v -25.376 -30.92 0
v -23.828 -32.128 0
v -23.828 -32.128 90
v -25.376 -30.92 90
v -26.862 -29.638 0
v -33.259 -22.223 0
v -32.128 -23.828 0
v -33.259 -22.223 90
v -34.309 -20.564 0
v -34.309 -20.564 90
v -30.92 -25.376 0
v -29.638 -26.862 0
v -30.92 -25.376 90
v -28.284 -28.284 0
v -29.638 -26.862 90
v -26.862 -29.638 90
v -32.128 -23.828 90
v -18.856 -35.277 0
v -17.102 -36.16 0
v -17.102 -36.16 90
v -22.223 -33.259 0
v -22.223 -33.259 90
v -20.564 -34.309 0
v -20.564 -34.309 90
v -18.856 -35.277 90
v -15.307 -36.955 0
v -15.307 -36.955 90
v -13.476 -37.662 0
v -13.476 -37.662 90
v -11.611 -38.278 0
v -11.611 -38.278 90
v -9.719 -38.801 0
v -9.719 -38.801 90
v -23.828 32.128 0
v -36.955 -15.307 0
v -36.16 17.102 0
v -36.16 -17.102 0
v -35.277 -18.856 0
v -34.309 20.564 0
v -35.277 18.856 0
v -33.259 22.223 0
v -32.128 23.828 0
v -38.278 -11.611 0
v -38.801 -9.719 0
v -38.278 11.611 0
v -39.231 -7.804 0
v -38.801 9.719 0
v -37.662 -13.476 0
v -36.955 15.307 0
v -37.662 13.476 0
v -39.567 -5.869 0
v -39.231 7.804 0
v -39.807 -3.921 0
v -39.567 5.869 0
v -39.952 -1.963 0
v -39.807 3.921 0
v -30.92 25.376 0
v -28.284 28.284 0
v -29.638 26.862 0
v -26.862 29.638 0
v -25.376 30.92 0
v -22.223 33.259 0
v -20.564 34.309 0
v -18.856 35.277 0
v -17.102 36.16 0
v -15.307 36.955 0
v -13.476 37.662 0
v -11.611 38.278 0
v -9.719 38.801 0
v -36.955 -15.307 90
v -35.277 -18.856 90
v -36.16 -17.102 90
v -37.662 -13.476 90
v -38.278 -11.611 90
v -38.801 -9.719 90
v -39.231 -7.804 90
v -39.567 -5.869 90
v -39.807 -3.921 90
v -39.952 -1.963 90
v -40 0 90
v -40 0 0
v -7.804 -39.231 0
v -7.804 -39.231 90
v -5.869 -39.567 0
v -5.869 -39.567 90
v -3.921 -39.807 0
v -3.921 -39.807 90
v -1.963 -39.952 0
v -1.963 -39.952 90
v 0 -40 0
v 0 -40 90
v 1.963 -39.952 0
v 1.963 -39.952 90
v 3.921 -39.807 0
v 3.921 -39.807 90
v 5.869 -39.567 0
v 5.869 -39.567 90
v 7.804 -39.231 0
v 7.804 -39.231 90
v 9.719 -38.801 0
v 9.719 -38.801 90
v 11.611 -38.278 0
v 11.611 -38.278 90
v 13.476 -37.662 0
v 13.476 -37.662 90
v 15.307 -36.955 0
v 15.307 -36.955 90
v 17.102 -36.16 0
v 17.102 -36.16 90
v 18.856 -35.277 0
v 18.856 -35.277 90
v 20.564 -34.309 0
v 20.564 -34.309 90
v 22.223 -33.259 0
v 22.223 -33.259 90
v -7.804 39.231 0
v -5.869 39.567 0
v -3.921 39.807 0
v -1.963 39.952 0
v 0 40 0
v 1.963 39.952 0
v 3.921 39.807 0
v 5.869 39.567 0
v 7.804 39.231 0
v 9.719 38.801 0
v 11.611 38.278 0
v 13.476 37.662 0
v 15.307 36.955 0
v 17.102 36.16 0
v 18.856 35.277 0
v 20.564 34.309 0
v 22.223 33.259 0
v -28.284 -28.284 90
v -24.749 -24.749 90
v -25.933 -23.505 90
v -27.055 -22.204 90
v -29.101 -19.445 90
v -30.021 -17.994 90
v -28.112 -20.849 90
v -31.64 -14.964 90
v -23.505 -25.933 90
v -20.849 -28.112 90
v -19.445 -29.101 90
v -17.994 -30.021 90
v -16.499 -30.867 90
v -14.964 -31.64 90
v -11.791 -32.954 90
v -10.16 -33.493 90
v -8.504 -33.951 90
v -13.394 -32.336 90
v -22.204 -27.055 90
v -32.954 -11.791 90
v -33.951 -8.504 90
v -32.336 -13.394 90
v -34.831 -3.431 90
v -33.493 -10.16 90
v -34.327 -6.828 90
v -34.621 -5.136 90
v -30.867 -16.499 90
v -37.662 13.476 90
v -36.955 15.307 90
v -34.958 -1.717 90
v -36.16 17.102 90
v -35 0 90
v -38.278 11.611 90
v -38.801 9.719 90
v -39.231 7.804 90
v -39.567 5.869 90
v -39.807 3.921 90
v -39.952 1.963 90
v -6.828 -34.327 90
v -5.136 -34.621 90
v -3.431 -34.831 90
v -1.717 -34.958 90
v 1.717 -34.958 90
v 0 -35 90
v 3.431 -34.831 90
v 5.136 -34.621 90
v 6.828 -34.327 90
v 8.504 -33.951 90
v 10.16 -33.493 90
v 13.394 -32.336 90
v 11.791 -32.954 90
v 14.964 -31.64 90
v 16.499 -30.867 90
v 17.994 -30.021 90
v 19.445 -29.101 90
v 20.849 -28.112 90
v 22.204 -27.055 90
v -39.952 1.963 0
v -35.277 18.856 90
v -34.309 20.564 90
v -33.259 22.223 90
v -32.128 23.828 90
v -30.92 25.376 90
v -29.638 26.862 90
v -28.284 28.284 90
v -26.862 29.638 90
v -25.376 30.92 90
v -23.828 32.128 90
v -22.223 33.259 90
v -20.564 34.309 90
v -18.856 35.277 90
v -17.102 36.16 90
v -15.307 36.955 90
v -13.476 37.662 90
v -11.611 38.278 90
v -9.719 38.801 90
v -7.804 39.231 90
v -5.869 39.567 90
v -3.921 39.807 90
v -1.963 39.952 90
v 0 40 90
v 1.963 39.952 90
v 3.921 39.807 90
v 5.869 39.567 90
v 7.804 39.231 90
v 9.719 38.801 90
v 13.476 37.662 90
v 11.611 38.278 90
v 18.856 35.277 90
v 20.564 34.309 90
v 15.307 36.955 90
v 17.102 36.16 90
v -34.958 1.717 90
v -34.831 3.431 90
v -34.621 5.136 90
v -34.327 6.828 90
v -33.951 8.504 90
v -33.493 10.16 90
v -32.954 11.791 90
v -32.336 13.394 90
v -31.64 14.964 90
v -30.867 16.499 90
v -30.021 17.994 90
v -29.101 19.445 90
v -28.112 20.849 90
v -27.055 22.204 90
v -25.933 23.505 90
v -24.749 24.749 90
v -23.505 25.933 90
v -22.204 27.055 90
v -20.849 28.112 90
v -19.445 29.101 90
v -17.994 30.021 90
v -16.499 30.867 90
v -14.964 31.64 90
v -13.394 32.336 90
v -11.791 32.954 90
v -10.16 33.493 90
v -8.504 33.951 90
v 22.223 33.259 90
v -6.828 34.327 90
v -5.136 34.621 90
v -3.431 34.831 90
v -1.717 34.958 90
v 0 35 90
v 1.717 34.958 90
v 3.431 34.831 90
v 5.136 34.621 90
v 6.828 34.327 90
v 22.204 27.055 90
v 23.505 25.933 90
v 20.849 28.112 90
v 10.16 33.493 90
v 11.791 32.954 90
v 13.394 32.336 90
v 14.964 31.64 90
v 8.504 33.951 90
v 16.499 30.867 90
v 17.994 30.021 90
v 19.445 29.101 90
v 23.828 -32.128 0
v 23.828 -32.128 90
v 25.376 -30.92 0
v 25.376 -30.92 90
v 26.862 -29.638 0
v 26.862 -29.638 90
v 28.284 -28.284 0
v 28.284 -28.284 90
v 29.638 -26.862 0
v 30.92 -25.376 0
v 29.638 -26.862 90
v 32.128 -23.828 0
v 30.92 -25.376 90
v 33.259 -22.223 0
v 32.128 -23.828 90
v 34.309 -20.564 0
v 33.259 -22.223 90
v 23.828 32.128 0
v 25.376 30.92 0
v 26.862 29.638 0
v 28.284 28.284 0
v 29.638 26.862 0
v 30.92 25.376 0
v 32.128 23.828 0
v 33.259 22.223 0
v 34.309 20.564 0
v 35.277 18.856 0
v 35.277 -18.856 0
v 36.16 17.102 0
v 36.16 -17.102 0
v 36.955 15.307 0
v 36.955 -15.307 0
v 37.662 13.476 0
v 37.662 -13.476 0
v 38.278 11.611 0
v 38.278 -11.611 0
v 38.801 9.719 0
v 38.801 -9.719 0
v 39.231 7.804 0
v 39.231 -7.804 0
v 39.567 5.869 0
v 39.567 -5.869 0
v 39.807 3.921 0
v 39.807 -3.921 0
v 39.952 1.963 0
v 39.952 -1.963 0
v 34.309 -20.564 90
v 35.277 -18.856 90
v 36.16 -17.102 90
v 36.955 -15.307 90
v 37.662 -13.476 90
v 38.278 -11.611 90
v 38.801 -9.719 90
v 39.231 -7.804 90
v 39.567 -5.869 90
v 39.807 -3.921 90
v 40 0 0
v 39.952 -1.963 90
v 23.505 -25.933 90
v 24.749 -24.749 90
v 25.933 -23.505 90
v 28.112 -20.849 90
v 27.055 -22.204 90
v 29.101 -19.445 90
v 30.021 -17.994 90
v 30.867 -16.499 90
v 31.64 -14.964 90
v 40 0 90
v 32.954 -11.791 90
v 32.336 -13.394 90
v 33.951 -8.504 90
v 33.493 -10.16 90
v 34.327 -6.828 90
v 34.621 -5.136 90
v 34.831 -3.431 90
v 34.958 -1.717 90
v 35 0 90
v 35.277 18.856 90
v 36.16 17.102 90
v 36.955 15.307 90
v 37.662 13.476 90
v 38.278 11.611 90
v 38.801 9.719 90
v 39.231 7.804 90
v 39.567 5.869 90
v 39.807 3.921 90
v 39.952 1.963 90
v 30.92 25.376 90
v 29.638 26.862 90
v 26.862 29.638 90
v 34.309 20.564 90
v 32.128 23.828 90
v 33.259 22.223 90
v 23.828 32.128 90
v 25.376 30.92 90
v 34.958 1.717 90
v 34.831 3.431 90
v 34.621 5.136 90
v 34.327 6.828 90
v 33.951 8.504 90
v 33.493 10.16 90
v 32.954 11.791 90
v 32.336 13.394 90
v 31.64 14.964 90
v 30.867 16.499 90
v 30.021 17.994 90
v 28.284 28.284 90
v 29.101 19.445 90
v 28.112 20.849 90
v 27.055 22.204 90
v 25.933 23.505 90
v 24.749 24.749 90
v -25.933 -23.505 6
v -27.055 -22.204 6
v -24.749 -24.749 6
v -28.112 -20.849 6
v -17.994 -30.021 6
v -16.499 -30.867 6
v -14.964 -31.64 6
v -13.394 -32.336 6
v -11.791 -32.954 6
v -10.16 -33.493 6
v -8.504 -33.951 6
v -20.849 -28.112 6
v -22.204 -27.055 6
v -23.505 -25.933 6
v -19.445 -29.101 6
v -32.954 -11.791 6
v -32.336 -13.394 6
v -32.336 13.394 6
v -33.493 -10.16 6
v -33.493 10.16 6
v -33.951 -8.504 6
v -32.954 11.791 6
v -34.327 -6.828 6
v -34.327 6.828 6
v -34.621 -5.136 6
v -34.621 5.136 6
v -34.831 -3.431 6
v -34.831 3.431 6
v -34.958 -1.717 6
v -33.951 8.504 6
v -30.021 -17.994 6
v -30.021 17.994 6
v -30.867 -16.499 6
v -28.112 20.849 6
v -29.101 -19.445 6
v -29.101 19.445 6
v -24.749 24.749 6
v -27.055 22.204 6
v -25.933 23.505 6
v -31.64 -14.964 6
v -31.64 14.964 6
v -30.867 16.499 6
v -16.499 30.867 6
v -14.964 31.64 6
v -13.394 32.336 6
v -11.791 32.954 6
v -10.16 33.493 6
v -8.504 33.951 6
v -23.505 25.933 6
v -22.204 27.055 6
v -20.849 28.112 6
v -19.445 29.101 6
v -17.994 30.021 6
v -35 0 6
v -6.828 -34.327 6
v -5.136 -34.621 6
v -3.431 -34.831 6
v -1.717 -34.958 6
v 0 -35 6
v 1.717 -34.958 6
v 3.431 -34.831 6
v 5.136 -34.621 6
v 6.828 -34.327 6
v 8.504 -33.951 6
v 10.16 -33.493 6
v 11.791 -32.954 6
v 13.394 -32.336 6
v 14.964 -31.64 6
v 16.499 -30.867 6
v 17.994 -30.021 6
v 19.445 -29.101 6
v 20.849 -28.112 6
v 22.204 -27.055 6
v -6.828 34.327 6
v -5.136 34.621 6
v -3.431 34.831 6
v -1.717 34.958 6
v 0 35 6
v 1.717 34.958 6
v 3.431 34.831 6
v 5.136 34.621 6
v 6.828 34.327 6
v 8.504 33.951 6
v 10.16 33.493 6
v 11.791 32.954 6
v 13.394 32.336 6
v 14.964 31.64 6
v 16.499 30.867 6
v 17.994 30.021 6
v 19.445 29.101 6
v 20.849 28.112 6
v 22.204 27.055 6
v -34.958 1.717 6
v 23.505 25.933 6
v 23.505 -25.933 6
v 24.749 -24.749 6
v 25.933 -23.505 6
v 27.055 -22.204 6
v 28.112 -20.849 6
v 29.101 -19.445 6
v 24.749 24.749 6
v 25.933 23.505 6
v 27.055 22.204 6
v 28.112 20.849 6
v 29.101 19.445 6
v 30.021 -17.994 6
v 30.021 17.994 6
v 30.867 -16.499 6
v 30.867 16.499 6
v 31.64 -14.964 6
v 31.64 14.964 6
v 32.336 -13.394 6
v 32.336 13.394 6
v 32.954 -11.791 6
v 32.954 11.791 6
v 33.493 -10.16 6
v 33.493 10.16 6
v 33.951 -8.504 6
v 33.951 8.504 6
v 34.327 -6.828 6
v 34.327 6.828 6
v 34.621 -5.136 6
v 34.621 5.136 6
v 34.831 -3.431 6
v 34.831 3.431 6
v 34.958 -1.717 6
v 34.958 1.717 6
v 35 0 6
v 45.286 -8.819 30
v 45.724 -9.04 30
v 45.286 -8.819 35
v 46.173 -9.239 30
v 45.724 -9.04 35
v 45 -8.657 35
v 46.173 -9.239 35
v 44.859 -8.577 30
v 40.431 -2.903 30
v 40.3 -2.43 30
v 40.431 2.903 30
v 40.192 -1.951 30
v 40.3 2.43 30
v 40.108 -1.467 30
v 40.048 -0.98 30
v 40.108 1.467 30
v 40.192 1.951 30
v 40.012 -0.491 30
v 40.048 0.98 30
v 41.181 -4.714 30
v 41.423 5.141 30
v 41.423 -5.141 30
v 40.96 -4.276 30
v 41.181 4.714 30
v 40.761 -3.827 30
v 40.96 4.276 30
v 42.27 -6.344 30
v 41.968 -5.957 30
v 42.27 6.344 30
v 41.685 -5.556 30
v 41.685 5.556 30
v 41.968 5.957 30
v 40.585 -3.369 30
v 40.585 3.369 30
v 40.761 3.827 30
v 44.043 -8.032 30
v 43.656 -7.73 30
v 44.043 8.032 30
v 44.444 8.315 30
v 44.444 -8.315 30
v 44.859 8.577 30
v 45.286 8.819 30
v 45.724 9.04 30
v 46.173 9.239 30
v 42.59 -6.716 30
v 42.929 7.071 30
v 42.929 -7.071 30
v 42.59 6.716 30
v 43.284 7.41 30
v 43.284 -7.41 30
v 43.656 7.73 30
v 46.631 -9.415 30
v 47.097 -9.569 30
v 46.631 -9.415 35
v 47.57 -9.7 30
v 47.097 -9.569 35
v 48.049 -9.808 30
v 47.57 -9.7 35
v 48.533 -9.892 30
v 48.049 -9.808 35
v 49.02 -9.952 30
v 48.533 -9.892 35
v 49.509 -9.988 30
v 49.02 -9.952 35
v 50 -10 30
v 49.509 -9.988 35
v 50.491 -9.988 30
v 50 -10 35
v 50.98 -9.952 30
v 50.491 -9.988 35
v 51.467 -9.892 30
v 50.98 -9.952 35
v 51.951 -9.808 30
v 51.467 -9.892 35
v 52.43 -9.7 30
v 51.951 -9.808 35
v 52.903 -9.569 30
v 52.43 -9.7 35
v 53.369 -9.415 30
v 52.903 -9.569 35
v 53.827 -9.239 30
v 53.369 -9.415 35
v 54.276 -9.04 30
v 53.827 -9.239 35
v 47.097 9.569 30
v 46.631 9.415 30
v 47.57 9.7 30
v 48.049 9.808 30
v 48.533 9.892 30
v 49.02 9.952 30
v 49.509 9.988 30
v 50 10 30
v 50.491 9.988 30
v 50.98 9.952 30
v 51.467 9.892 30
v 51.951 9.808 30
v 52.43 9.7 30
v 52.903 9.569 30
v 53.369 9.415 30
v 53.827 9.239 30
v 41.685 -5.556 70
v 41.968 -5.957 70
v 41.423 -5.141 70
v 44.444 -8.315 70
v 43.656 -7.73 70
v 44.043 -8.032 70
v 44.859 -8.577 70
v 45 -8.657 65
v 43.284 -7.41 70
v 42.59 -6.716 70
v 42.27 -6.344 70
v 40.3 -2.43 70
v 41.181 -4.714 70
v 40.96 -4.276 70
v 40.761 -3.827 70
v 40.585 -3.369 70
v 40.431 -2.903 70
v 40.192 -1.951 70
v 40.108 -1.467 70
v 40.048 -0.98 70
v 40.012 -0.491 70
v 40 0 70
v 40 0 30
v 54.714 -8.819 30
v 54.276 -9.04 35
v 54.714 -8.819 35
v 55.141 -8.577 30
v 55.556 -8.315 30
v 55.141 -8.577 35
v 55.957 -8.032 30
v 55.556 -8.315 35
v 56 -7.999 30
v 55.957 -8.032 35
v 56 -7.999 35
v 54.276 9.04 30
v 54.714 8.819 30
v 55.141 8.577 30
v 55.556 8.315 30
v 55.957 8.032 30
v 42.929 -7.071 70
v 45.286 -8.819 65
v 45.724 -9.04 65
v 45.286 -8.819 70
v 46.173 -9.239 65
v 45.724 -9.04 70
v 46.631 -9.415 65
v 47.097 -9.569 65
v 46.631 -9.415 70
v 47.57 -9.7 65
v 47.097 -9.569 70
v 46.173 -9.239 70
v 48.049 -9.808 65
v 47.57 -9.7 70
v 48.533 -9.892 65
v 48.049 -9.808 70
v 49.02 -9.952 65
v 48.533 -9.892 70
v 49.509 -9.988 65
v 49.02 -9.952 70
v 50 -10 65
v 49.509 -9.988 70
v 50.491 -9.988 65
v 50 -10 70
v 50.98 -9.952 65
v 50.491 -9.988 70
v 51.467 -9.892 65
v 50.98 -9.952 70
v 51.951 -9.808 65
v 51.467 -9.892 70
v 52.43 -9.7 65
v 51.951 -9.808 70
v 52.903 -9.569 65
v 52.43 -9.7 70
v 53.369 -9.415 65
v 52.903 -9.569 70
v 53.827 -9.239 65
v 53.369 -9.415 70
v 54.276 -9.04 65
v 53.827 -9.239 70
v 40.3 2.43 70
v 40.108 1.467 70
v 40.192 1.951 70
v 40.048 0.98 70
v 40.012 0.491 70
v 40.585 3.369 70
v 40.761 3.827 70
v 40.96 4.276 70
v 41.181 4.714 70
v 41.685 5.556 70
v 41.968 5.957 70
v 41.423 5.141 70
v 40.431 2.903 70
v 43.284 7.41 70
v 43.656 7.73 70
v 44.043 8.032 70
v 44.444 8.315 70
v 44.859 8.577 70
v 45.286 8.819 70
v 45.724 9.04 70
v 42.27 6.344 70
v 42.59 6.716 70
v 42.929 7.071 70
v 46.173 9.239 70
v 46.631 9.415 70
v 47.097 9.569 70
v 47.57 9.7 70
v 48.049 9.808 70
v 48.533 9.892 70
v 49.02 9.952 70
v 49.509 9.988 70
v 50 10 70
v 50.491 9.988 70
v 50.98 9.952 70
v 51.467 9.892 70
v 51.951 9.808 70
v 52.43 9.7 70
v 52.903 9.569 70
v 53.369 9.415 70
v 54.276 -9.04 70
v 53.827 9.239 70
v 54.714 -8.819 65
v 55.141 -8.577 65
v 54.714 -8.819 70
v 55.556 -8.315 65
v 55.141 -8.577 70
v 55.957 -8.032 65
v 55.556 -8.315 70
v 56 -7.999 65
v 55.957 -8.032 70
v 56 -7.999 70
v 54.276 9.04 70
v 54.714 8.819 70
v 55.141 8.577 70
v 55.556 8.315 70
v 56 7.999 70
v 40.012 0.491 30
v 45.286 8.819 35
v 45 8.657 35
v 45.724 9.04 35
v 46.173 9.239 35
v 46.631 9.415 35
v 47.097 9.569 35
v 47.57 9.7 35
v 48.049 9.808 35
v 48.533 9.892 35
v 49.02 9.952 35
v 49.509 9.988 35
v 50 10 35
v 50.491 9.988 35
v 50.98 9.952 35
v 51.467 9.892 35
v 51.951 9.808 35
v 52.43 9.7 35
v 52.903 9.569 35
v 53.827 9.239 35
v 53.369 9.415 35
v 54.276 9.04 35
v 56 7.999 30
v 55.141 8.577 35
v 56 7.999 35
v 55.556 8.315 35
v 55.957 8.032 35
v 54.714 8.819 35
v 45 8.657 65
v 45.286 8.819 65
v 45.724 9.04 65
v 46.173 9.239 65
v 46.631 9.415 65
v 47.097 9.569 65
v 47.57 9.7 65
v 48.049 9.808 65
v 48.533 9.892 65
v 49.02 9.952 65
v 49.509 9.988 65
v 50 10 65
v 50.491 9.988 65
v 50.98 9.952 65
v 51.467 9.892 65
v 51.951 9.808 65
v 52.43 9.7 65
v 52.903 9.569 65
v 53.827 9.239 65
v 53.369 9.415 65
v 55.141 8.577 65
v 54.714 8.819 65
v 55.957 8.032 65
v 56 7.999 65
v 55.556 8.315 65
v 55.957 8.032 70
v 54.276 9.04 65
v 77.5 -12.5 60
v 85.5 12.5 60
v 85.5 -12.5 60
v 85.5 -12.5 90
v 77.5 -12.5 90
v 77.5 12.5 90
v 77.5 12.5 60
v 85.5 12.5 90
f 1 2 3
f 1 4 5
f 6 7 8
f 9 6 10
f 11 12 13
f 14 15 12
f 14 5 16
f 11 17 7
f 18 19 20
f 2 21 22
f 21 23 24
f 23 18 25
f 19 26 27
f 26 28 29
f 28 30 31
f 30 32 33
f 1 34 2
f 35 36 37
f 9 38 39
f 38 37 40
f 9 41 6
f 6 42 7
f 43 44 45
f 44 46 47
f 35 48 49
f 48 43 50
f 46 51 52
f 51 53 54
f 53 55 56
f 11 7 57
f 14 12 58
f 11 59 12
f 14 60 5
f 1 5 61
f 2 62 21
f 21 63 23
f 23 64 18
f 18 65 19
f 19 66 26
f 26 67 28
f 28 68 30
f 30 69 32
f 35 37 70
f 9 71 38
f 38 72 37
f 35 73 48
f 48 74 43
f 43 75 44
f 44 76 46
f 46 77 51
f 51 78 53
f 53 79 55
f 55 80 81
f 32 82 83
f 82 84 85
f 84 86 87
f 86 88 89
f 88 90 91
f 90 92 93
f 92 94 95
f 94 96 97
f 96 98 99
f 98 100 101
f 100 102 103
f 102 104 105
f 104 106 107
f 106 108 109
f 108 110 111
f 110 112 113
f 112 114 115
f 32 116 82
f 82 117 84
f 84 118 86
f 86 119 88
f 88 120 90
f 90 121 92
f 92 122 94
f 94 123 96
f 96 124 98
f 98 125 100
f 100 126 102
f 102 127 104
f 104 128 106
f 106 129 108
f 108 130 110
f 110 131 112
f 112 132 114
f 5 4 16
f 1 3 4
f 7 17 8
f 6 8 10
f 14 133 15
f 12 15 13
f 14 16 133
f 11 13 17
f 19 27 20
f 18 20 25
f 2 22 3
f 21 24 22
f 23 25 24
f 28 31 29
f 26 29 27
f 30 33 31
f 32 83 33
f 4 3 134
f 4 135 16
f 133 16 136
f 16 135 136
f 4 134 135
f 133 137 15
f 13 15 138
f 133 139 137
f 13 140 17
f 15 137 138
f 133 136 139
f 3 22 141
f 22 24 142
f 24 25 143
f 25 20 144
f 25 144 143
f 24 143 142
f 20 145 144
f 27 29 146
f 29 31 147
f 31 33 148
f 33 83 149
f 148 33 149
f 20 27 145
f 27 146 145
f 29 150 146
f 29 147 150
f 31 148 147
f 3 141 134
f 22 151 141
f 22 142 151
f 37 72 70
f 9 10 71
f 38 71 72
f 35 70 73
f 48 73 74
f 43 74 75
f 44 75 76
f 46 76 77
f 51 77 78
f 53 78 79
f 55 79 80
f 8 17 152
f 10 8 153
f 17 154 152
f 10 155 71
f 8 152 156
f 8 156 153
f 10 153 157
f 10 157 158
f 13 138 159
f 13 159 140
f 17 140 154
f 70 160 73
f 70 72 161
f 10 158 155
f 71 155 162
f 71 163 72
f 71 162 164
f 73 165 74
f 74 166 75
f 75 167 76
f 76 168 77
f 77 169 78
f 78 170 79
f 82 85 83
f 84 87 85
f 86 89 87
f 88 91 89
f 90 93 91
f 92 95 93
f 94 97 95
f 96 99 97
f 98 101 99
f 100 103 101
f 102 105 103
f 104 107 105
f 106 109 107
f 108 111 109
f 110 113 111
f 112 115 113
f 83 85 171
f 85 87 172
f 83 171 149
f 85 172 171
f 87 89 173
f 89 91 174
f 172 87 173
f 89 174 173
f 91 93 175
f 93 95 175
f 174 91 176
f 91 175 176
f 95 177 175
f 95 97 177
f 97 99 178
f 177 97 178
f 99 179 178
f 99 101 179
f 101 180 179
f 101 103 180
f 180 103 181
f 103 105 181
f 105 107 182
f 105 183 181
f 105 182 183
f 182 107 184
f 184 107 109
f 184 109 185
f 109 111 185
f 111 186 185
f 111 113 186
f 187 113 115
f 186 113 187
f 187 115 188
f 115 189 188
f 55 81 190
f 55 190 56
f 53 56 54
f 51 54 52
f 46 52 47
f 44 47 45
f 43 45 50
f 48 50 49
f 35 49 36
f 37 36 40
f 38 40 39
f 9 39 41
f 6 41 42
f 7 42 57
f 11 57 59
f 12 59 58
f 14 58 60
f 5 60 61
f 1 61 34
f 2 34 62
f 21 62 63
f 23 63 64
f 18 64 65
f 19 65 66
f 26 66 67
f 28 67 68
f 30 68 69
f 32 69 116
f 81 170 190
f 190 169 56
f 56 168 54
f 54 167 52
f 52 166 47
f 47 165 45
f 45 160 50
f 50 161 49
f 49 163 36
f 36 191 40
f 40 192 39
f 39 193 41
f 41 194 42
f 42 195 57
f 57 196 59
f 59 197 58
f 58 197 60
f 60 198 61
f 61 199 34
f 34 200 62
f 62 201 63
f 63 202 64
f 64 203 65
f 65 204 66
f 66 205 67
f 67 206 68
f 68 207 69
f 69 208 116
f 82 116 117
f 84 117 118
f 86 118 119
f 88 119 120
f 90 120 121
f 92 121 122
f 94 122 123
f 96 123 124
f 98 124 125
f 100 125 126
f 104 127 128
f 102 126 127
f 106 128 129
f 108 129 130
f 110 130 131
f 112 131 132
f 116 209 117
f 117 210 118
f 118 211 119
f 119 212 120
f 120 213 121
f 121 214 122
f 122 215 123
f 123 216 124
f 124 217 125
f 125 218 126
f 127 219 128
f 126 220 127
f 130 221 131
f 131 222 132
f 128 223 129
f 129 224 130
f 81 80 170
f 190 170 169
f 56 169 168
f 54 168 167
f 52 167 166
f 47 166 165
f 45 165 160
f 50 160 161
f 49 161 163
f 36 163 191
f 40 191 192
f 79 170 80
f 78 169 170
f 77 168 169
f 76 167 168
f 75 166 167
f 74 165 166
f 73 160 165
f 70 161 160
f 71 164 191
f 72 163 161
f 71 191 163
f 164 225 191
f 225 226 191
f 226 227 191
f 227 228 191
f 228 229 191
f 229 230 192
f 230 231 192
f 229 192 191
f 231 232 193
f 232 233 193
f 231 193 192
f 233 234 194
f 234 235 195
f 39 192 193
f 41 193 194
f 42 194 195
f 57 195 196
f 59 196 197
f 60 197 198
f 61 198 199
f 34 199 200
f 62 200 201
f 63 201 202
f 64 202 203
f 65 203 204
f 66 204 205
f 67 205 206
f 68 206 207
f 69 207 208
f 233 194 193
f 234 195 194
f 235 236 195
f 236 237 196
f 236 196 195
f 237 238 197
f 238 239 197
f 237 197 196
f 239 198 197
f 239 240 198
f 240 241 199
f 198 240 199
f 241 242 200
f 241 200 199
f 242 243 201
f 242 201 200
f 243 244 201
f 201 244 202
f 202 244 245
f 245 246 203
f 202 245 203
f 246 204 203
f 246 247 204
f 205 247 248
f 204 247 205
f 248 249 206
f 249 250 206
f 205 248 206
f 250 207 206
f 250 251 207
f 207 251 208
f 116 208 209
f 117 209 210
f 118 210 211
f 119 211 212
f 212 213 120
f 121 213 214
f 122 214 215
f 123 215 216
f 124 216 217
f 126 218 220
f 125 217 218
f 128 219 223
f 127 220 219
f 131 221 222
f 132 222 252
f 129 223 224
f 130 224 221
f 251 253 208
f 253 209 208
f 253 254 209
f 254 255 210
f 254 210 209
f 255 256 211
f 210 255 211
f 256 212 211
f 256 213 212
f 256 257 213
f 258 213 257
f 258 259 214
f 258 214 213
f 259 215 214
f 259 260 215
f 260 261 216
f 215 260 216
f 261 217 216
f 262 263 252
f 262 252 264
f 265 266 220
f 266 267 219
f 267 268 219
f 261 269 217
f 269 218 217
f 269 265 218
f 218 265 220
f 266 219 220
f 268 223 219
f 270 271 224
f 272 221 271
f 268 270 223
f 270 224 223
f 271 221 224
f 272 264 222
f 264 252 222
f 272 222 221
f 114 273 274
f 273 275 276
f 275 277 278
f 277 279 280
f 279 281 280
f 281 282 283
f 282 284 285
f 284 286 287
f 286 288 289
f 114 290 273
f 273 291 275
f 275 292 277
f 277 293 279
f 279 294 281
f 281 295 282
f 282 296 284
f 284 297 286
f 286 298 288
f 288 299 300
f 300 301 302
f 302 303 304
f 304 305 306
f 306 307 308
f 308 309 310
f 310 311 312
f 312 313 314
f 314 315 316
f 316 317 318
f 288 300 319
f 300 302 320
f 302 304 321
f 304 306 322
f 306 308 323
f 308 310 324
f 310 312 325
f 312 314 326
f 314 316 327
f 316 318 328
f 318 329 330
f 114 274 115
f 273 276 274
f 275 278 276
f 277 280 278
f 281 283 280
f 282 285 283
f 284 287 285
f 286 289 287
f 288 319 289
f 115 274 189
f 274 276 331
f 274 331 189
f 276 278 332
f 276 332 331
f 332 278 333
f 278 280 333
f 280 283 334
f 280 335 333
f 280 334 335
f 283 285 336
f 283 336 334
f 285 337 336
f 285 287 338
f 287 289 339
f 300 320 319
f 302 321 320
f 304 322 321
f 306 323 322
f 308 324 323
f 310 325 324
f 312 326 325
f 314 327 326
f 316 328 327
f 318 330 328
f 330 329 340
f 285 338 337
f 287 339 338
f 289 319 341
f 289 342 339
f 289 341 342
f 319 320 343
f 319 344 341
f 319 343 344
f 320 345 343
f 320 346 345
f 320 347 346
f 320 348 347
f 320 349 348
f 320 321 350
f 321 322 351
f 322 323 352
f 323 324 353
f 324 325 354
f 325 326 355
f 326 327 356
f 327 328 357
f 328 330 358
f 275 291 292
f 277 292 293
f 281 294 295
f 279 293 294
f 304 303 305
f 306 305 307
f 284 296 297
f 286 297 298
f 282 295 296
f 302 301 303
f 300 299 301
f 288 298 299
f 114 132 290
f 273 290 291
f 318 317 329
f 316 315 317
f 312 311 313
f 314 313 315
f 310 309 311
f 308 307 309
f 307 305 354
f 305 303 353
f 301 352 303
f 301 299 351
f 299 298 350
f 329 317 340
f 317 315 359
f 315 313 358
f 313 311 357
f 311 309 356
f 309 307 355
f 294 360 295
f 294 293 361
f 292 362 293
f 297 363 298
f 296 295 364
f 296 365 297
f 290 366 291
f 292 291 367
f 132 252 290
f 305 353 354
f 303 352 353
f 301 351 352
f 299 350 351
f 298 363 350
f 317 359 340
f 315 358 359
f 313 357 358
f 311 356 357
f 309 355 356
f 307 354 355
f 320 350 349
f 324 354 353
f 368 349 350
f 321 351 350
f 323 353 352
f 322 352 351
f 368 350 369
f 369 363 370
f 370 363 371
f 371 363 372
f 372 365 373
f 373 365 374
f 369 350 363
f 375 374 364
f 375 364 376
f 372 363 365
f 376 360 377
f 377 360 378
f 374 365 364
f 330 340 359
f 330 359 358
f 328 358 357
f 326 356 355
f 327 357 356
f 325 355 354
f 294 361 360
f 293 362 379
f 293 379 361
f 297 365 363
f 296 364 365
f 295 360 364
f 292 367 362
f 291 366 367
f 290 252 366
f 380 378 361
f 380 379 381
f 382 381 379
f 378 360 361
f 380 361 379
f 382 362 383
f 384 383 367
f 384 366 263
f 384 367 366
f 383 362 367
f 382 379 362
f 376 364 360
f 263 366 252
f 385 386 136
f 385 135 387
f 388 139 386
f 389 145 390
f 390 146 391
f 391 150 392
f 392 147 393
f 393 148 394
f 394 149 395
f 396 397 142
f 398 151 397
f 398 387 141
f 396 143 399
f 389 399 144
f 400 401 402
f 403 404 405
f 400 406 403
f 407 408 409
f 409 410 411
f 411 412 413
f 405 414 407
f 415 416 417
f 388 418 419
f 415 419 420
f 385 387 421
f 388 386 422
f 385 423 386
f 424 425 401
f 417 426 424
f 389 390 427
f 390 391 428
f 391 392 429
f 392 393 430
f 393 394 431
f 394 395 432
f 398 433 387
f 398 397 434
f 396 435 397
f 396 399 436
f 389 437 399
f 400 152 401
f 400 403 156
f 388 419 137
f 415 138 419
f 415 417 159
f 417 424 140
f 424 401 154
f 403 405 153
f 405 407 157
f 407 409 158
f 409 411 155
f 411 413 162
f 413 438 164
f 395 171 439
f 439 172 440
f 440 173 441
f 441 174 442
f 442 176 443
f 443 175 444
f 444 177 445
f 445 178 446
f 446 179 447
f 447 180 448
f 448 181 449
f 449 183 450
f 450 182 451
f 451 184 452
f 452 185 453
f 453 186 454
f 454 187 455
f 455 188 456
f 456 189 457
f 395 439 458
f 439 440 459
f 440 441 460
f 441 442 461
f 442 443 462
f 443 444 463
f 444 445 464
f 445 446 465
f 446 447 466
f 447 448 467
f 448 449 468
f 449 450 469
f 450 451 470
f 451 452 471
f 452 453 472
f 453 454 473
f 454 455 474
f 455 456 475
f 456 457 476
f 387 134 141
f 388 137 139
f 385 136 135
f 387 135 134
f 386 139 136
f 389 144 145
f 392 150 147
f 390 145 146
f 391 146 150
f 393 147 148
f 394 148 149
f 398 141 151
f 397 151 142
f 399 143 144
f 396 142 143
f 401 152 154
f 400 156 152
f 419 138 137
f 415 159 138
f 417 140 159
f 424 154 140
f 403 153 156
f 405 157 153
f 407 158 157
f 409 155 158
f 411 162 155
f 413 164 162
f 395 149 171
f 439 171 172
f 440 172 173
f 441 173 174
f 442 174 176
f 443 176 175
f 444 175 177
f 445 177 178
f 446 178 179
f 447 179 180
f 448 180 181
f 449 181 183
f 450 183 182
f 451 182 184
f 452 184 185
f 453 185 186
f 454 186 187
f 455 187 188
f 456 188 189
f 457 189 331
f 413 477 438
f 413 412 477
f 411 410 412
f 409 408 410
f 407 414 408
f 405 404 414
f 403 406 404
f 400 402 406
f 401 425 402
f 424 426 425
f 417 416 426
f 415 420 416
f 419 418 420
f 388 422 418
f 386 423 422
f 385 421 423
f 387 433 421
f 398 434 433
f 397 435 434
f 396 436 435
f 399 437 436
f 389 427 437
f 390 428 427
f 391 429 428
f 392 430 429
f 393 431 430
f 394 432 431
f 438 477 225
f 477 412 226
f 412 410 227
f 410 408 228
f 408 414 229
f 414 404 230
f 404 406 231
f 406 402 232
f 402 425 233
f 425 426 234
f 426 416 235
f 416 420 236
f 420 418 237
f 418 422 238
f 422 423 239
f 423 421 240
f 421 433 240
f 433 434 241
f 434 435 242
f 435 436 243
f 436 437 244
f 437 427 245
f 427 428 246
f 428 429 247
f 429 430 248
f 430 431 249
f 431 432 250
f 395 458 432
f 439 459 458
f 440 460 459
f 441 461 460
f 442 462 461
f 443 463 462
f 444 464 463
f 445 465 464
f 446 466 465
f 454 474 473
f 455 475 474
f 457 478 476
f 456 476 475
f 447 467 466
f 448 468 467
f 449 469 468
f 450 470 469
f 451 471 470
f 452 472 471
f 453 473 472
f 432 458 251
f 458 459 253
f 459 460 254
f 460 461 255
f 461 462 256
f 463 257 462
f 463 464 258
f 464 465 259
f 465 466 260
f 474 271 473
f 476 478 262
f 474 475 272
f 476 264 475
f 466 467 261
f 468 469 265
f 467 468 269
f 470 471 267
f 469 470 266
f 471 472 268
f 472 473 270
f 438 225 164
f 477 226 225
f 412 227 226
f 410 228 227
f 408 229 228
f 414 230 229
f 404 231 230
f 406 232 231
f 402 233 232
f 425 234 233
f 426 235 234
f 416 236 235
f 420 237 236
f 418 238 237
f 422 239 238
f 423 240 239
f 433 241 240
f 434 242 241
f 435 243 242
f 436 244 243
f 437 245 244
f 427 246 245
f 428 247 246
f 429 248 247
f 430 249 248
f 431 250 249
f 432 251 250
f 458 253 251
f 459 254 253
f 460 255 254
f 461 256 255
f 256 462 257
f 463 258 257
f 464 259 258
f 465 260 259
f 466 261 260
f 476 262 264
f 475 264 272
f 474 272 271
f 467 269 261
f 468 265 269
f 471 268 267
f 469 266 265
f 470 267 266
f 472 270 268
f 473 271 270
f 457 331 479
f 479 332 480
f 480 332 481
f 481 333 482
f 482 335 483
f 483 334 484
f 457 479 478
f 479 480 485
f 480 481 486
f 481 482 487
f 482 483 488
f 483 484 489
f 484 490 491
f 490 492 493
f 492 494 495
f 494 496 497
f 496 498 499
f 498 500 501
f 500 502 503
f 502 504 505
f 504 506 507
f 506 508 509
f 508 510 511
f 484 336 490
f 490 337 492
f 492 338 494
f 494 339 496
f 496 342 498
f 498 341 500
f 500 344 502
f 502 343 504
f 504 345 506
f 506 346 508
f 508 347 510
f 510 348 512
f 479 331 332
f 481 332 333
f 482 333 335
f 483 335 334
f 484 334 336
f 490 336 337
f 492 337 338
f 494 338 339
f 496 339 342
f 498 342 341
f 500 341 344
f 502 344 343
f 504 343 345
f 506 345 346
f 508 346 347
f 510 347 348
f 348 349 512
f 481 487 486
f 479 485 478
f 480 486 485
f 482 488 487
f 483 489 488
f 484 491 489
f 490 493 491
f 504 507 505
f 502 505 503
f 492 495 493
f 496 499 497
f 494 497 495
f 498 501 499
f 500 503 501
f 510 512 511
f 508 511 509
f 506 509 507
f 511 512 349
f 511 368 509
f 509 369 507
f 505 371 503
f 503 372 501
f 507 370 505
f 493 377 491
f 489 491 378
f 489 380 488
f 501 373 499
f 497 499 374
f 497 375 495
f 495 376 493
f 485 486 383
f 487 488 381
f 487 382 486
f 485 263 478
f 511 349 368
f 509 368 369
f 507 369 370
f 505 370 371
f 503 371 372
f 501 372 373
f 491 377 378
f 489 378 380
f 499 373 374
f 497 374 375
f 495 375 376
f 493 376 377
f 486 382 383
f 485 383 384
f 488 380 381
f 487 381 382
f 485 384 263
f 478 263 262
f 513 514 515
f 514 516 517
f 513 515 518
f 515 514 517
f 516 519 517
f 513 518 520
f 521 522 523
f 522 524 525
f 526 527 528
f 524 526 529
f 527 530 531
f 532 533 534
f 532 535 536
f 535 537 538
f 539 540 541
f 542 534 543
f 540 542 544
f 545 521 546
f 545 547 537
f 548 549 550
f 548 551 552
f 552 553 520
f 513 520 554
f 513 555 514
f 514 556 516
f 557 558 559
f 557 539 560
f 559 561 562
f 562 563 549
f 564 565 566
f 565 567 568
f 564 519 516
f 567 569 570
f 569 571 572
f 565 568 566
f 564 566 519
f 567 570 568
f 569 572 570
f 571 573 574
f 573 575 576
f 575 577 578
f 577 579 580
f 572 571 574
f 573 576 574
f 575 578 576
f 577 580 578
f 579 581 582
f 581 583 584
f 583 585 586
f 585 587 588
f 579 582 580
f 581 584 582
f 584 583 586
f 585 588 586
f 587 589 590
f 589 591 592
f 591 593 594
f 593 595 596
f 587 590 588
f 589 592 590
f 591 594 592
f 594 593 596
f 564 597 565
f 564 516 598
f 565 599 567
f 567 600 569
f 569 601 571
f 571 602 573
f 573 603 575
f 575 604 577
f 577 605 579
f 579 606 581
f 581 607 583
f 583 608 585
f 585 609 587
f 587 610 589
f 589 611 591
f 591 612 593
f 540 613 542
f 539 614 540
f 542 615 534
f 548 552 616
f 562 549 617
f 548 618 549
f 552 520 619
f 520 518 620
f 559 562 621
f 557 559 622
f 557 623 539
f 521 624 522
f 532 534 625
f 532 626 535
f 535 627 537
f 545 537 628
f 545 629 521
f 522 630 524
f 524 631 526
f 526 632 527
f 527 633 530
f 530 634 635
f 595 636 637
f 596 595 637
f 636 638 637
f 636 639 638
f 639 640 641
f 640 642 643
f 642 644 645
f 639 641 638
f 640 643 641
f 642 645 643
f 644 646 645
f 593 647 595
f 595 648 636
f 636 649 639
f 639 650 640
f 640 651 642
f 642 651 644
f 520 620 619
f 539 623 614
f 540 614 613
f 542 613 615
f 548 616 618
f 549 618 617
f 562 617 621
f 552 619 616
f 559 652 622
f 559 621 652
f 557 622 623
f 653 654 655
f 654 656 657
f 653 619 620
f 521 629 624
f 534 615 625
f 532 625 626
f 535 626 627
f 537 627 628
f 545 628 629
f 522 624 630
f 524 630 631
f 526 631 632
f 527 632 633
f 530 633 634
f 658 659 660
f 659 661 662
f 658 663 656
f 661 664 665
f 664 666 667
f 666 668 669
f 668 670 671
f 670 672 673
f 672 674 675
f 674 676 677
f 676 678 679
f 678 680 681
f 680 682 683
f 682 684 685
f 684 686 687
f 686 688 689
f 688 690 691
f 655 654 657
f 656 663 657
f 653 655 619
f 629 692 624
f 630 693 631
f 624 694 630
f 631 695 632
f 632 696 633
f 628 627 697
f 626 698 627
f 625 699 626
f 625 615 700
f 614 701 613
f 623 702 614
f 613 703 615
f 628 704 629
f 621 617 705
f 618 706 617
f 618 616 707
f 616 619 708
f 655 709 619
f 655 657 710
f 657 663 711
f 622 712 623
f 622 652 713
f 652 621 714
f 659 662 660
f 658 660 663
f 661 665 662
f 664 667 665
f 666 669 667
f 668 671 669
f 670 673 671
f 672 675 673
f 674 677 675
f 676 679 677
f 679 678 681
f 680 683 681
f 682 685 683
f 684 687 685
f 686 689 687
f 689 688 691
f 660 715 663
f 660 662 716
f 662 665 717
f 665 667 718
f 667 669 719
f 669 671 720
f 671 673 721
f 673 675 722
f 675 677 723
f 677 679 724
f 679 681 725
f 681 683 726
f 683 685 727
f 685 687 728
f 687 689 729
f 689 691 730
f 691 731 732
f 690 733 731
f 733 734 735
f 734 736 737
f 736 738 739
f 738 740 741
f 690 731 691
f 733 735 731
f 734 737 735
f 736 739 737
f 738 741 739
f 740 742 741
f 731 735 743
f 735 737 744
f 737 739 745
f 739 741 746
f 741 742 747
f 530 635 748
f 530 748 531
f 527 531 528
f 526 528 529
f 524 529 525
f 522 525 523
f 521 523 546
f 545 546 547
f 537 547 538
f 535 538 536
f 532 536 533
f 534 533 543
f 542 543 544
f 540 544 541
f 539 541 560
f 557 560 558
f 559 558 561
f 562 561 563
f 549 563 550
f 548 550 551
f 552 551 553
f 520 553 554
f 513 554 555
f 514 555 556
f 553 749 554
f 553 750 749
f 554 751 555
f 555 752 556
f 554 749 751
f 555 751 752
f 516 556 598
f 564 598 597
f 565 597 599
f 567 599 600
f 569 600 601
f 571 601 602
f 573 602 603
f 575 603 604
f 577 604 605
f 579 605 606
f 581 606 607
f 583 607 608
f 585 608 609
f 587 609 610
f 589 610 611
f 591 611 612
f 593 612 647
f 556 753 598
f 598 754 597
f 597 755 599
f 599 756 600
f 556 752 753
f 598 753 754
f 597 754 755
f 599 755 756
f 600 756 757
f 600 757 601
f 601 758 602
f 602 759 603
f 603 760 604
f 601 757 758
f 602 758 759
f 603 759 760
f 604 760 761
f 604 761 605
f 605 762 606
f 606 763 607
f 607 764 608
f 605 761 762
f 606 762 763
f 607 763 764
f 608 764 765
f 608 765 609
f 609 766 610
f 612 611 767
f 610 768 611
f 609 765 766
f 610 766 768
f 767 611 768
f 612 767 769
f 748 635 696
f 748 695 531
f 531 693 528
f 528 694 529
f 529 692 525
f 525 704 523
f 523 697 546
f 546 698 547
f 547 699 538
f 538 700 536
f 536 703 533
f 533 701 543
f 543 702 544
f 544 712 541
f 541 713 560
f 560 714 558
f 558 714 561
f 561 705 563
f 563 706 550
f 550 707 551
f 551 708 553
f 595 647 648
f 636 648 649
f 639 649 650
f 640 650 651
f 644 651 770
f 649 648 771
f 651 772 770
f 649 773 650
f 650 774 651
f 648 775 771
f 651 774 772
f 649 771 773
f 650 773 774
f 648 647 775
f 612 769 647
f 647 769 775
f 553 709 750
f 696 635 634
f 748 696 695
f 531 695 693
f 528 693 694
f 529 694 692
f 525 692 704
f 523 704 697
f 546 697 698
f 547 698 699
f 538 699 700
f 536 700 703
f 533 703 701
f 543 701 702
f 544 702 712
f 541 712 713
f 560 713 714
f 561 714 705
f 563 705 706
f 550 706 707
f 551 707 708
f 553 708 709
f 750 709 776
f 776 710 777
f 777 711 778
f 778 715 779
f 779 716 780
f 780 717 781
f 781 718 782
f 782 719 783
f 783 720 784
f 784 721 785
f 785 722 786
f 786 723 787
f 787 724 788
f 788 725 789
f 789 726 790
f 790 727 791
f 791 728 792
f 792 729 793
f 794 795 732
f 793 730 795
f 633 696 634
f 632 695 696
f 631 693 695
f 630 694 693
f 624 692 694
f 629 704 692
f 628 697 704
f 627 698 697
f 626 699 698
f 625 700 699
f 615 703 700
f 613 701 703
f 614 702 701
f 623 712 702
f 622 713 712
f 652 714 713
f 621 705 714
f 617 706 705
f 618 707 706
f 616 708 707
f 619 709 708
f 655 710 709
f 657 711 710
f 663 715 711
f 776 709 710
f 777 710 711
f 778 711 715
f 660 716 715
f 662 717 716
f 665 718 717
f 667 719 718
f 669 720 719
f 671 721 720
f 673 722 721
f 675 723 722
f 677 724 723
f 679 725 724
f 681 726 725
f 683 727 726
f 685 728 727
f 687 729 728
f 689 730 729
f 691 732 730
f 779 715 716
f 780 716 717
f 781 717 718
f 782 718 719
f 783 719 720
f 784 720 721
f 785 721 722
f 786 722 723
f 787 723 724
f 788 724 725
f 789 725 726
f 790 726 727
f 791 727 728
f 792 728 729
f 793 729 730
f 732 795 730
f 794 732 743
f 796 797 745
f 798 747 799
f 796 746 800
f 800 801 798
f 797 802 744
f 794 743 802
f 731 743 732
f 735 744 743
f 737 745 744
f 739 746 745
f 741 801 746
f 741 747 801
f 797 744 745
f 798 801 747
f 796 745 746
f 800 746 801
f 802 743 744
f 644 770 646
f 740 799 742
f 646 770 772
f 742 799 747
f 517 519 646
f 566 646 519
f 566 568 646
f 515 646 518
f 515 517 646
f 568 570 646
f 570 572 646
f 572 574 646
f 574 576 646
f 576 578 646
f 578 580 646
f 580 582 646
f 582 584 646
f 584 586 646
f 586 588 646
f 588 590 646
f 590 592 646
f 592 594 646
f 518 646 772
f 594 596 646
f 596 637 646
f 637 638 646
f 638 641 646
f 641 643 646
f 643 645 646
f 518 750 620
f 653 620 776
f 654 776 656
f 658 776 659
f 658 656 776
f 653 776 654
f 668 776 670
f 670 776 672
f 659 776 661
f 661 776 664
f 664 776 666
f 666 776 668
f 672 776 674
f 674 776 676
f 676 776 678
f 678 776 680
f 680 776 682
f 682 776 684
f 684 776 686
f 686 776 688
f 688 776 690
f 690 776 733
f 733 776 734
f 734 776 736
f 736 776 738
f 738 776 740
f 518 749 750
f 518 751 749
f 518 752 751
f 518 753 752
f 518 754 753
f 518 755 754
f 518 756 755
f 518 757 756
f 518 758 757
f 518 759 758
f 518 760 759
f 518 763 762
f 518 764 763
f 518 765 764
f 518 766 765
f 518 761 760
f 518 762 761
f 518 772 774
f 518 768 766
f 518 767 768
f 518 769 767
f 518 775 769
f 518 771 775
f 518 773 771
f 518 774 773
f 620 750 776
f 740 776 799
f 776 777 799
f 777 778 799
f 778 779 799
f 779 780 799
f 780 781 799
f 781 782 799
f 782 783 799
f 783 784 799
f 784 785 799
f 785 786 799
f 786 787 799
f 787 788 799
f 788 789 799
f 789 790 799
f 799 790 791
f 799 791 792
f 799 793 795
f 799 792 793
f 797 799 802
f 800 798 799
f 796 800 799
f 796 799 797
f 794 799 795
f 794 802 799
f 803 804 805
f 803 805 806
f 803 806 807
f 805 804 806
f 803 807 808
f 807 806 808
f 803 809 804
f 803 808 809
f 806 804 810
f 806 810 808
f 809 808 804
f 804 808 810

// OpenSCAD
// Mug + handle (OpenSCAD)
// Parameters
$fn = 128;

cup_outer_d = 80;
cup_inner_d = 70;
cup_outer_r = cup_outer_d/2;
cup_inner_r = cup_inner_d/2;

cup_height = 90;
bottom_thickness = 6;
wall_thickness = (cup_outer_d - cup_inner_d)/2; // 5mm

handle_width = 25;   // width (Y direction)
handle_inner_h = 30; // height along Z
handle_outer_d = 20;  // D-shape outer half-circle diameter
handle_thickness = wall_thickness; // connector thickness into the cup

handle_center_z = cup_height/2; // middle of mug height

// --- Main mug body (hollow cylinder with bottom) ---
module mug_body() {
    difference() {
        // Outer cylinder
        cylinder(h=cup_height, r=cup_outer_r);

        // Inner cavity: starts at bottom thickness, leaving bottom solid
        translate([0,0,bottom_thickness])
            cylinder(h=cup_height-bottom_thickness, r=cup_inner_r);
    }
}

// --- D-shaped handle aligned at +X side ---
// D-shape: half-circle outer, flat side toward cup, connected to cup wall.
module handle_plus_x() {
    // Place handle at +X side of the mug
    // The handle's flat face should attach to the mug outer surface.
    // For a half-cylinder with radius R, center line is at +X = cup_outer_r + R
    // (flat face at x = cup_outer_r).
    R = handle_outer_d/2;

    // Ensure connector has enough thickness into/out of the cup without gaps.
    // We'll build handle as a solid half-cylinder extruded in Y (width),
    // then subtract the rectangular inner void.
    //
    // Local coordinates for handle solid:
    // - X axis extends outward from the mug
    // - Y axis is width
    // - Z axis is height
    //
    // We'll create a half-cylinder "D" using intersection of:
    // - a full cylinder (radius R) with diameter along X,
    // - a half-space (Y? no, we need flat side in X, so use X>=0 half-space via translate and cube)
    //
    // Better: Create half-cylinder by intersecting with a cube plane that keeps the "outer" half.
    // The half we want has flat face toward the cup (negative X side of handle local).
    // Build in local frame where flat face is at x=0 and outer is x in [0..R*?].
    // We'll then translate to attach at cup_outer_r.

    // Handle local origin: at flat face centerline (x=0 plane), centered in Y, at z=0
    // We'll place the handle by translating so that local z=0 aligns to desired center height.

    // Solid outer half-D + width extrusion
    module outer_half_d() {
        // Base block to define the solid volume shape
        // We'll generate a half-cylinder with its flat face at x=0:
        // Use intersection between a cylinder centered at (x=R, y=0) and a half-space x>=0.
        // Cylinder axis is along Z; but we want D shape in X-Y plane with width in Y.
        // Use cylinder axis along Z and treat X-Y as plane: cylinder has radius R in X-Y.
        // Then "half" is selected by keeping points with X>=0 in local space.
        intersection() {
            // Full cylinder in X-Y with radius R, spanning Z thickness=handle_inner_h + some allowance
            // We'll span enough and later subtract inner cavity.
            cylinder(h=handle_inner_h + 2*handle_thickness, r=R, center=false);

            // Keep only points with X>=0 by using an infinite half-space approximation with cube:
            // Since cylinder already occupies x in [center_x-R .. center_x+R] relative to its own center,
            // we shift cylinder center so that its leftmost point touches x=0.
        }
    }

    // The above intersection needs correct placement: We'll do it explicitly without that inner module.

    // Build in local space:
    // - Cylinder axis along Z, centered in Y at 0, centered in X at R so that its flat face at x=0
    // - Keep only x >= 0 by intersecting with a large cube that includes only x>=0.
    // Then limit Z to full handle thickness region, and also limit Y width with a bounding cube.
    union() {
        // Outer half-D shell
        difference() {
            // Outer shape (half-cylinder with width limited)
            intersection() {
                // Half of cylinder in X-Y plane:
                // Cylinder centered at (R,0) in X-Y, axis along Z
                translate([R, 0, 0])
                    cylinder(h=handle_inner_h + 2*handle_thickness, r=R, center=false);

                // Keep only x >= 0 (local)
                translate([0, -handle_width/2, 0])
                    cube([R + handle_thickness + 1, handle_width, handle_inner_h + 2*handle_thickness], center=false);
            }

            // Cut inner cavity (rectangular) to create D-shape opening
            // Local cavity: x from (handle_thickness) to (R + ...) to remove
            // y within handle_width, z within handle_inner_h
            translate([handle_thickness, -handle_width/2, handle_thickness])
                cube([R + handle_thickness + 2, handle_width, handle_inner_h], center=false);
        }

        // Connector to ensure solid union with the mug body:
        // Add a block that overlaps the mug exterior so there is no "宙吊り"/gap.
        // This block spans a bit into the cup wall and outwards.
        connector_len_x = 3.0; // overlap depth into mug
        translate([cup_outer_r - handle_thickness/2, -handle_width/2, handle_center_z - handle_inner_h/2])
            cube([handle_thickness + connector_len_x, handle_width, handle_inner_h], center=false);
    }

    // Note: union() includes both outer and connector; outer already has half-D shape.
}

// --- Final assembly ---
difference() {
    union() {
        mug_body();

        // Place handle at +X side.
        // Handle flat face at cup_outer_r in world coordinates.
        // Local handle flat plane is at x=0; outer half extends positive X.
        // So world x = cup_outer_r + 0 for flat face.
        translate([cup_outer_r, 0, 0])
            translate([0, 0, handle_center_z - handle_inner_h/2])
                handle_plus_x();
    }
}
